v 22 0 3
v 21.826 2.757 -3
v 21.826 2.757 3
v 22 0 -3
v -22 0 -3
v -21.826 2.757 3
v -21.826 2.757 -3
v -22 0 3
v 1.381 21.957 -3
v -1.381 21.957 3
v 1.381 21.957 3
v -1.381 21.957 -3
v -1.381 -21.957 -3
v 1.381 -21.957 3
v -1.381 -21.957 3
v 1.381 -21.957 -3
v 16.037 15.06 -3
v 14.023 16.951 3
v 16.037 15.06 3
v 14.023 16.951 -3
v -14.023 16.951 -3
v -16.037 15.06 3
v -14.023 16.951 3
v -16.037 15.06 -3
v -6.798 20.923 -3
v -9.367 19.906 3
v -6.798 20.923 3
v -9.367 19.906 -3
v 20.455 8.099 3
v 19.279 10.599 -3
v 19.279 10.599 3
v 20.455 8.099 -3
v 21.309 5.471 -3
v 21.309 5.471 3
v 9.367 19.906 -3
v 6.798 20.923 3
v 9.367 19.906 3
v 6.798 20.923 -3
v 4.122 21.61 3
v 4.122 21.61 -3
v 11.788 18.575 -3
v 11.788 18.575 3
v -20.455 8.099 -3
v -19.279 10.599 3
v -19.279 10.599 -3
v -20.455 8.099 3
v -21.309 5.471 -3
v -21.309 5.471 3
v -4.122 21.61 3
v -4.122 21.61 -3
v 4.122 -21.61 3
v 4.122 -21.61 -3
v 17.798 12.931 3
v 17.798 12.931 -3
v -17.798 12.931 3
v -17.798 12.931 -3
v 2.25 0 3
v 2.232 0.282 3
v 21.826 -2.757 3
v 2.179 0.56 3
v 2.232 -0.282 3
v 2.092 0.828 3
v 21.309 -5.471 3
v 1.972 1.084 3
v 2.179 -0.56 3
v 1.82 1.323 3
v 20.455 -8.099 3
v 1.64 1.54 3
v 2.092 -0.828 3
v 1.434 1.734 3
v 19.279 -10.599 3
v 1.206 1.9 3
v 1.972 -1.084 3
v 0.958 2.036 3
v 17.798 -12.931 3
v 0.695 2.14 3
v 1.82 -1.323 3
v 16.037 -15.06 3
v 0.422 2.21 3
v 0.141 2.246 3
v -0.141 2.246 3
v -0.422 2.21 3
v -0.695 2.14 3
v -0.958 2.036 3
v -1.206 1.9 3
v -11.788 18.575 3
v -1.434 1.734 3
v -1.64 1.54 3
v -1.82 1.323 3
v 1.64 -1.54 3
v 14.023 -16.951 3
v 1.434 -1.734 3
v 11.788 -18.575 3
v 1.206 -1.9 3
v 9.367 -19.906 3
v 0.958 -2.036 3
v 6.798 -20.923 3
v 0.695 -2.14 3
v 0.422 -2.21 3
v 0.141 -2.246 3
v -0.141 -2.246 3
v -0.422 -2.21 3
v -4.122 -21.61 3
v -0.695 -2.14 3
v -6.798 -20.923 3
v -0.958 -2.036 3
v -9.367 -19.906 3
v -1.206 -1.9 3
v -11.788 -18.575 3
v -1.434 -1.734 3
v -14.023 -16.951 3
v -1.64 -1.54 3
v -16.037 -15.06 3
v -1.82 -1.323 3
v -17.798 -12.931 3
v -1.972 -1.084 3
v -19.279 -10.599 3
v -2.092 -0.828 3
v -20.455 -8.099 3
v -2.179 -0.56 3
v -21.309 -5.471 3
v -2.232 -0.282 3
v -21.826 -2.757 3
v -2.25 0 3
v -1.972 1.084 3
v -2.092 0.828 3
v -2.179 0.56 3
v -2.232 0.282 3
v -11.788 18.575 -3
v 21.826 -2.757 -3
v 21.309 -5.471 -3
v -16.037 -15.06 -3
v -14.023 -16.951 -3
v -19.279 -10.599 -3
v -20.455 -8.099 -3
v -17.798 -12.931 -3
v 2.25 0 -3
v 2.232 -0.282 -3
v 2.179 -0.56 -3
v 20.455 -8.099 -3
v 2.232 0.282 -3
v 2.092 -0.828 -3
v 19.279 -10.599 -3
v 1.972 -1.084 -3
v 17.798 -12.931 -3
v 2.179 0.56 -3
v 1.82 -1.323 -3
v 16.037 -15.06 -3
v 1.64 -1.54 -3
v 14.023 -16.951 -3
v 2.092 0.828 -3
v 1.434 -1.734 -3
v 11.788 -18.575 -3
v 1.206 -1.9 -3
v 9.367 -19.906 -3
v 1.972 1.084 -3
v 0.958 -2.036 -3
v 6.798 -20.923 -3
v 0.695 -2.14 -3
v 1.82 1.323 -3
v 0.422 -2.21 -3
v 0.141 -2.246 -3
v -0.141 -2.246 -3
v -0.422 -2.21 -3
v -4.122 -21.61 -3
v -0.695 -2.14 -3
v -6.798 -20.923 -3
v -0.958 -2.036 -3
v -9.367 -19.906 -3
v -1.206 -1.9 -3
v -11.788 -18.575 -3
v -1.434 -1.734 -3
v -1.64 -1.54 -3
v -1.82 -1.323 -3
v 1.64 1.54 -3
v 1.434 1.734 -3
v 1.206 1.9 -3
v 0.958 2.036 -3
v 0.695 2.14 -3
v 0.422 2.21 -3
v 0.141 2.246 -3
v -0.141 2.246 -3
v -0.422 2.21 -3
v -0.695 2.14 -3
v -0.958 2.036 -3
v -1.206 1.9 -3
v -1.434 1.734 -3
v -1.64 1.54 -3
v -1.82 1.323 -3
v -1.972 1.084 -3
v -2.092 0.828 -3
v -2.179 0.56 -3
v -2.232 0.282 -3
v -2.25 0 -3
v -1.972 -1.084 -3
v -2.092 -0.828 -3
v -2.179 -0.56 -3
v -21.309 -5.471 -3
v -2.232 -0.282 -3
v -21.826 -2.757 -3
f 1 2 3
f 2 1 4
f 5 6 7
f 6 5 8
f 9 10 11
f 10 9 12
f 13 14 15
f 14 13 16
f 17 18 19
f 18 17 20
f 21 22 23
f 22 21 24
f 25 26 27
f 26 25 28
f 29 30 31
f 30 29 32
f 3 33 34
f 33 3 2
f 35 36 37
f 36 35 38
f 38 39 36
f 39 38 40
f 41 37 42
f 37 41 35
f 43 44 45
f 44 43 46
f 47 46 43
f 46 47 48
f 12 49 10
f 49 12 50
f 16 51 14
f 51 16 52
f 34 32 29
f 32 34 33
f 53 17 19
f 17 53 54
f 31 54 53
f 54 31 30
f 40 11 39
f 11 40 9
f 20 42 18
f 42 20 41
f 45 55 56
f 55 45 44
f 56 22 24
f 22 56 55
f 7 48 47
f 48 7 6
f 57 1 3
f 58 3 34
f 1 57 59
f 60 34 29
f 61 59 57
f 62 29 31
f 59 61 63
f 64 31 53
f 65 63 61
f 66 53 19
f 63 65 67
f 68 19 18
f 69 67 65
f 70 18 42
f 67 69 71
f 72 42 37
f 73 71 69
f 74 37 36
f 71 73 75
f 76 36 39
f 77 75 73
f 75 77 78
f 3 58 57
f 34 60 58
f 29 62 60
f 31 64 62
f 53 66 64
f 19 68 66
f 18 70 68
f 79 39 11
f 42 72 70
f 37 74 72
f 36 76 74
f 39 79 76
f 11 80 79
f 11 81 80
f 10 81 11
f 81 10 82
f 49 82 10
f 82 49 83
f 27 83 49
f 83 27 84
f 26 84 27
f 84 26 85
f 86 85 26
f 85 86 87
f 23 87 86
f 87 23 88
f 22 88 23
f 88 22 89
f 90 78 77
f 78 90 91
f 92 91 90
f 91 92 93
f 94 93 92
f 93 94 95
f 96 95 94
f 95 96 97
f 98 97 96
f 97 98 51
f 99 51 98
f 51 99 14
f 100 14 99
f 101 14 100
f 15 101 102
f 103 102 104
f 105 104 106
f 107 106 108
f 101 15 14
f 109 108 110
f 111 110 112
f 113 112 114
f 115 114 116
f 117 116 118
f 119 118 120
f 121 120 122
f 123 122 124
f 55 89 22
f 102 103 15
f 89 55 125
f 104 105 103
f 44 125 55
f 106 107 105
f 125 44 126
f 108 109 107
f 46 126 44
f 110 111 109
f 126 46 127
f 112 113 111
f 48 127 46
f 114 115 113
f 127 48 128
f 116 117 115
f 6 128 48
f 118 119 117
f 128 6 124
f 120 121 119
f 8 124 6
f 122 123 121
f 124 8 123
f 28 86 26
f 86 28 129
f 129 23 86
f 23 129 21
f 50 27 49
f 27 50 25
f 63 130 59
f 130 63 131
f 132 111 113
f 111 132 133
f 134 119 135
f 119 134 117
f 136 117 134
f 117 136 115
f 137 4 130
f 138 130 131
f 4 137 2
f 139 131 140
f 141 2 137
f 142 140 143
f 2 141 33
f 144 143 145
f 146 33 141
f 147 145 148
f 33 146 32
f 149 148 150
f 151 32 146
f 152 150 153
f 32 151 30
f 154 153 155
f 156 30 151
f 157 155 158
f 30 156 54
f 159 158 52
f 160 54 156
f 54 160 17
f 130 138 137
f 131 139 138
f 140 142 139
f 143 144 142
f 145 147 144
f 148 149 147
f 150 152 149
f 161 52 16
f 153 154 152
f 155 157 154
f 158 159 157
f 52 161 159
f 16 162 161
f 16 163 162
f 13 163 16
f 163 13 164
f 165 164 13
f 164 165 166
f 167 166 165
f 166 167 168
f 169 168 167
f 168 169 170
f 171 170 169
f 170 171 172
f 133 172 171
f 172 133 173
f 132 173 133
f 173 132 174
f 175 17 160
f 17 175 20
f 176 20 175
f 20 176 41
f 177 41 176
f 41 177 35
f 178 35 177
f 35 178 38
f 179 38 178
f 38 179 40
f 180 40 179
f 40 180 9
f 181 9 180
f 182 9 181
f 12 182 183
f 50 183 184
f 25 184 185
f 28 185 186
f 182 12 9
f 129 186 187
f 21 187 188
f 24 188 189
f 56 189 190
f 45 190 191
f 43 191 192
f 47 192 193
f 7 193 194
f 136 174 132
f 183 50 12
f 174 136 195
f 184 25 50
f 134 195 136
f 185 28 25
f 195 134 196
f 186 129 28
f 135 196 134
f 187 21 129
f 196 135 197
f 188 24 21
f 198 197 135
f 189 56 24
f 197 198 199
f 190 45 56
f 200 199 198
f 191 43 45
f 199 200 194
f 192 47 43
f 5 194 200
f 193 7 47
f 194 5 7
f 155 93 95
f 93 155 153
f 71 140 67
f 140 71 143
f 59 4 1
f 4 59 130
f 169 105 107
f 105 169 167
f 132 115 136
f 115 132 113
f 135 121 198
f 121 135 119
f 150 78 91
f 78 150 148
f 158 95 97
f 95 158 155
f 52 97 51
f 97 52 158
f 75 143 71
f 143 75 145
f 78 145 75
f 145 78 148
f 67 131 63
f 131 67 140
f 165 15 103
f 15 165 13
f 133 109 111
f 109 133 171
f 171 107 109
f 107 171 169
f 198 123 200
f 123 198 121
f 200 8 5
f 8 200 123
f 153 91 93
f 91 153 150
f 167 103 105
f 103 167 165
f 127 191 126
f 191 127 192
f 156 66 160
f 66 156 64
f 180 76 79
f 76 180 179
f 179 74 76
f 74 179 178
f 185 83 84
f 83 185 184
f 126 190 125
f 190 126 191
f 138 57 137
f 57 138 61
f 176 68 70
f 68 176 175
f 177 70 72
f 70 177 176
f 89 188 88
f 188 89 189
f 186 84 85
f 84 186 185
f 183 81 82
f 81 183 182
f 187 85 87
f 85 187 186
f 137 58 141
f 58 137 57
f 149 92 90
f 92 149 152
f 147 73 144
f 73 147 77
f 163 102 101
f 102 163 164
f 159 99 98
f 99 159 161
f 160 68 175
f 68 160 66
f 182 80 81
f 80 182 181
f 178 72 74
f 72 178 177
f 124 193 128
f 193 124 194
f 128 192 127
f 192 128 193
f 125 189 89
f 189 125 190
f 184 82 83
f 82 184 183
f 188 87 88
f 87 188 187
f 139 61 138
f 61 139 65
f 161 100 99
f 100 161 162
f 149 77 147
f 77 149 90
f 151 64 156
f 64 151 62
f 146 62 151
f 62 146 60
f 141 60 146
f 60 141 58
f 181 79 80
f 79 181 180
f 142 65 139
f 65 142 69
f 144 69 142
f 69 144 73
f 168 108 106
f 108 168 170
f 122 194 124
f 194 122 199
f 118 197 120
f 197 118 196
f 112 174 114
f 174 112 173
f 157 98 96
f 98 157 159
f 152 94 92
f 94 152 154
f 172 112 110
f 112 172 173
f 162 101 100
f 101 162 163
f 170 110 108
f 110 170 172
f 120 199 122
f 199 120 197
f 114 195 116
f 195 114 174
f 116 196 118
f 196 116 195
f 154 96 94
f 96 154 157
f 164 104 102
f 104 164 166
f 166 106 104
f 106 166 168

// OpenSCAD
$fn = 50;


difference() {
	union() {
		translate(v = [0, 0, -3.0000000000]) {
			cylinder(h = 6, r = 22.0000000000);
		}
	}
	union() {
		translate(v = [0, 0, -100.0000000000]) {
			cylinder(h = 200, r = 2.2500000000);
		}
	}
}
